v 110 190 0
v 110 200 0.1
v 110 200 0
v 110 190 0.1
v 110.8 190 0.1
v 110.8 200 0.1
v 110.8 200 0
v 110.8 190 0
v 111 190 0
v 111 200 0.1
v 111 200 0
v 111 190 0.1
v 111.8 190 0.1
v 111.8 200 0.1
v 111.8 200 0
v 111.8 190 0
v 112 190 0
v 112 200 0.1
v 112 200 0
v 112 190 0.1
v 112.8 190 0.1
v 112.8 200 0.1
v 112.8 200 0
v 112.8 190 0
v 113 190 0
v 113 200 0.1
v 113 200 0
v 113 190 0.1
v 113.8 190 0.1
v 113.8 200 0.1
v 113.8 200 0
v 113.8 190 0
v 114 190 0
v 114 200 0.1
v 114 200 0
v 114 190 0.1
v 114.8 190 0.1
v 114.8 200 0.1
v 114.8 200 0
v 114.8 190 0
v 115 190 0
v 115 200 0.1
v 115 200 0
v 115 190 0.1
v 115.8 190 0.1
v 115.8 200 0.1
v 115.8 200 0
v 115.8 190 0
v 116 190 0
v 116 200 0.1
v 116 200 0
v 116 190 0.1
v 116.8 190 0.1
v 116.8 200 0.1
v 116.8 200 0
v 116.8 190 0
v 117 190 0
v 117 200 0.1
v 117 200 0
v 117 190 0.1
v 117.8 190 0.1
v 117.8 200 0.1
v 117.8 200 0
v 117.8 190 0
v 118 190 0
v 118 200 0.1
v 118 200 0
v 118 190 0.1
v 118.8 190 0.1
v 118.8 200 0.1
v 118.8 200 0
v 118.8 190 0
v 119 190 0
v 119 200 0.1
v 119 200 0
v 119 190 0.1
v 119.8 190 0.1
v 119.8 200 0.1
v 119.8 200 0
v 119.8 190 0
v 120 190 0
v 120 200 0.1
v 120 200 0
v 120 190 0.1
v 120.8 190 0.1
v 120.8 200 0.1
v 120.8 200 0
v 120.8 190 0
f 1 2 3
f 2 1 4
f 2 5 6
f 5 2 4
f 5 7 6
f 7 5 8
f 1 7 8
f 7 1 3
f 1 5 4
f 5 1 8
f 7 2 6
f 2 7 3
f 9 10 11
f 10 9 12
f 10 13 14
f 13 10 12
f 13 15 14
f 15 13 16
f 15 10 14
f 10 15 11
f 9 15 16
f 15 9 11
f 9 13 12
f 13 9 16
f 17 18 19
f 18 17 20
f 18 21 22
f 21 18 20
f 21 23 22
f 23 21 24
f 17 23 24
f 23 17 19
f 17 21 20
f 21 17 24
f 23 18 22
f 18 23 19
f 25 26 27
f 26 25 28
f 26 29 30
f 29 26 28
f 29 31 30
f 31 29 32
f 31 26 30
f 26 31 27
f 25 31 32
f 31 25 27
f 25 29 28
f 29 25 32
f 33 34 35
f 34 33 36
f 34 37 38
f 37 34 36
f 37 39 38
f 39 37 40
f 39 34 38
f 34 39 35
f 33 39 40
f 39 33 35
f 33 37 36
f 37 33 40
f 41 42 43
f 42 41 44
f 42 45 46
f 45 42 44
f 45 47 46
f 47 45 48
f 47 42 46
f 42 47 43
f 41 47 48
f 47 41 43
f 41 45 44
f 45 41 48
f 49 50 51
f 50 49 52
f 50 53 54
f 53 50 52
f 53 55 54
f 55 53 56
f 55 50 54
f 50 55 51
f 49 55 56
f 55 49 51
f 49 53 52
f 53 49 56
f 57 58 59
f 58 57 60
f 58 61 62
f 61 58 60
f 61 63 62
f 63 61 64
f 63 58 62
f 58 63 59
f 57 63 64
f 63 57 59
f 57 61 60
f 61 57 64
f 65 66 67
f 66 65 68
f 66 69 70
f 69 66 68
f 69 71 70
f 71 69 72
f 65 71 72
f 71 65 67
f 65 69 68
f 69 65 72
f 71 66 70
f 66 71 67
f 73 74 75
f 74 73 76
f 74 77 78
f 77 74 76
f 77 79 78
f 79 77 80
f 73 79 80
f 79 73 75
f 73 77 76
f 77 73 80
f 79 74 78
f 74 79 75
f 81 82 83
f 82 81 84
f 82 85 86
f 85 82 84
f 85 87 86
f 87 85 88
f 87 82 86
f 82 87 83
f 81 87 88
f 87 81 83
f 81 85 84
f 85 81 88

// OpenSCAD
translate([10+100,10+180,0])
        for (i = [0 : 10]){
            translate([i,0,0])
                cube(size = [0.8,10,0.1]);
    }
